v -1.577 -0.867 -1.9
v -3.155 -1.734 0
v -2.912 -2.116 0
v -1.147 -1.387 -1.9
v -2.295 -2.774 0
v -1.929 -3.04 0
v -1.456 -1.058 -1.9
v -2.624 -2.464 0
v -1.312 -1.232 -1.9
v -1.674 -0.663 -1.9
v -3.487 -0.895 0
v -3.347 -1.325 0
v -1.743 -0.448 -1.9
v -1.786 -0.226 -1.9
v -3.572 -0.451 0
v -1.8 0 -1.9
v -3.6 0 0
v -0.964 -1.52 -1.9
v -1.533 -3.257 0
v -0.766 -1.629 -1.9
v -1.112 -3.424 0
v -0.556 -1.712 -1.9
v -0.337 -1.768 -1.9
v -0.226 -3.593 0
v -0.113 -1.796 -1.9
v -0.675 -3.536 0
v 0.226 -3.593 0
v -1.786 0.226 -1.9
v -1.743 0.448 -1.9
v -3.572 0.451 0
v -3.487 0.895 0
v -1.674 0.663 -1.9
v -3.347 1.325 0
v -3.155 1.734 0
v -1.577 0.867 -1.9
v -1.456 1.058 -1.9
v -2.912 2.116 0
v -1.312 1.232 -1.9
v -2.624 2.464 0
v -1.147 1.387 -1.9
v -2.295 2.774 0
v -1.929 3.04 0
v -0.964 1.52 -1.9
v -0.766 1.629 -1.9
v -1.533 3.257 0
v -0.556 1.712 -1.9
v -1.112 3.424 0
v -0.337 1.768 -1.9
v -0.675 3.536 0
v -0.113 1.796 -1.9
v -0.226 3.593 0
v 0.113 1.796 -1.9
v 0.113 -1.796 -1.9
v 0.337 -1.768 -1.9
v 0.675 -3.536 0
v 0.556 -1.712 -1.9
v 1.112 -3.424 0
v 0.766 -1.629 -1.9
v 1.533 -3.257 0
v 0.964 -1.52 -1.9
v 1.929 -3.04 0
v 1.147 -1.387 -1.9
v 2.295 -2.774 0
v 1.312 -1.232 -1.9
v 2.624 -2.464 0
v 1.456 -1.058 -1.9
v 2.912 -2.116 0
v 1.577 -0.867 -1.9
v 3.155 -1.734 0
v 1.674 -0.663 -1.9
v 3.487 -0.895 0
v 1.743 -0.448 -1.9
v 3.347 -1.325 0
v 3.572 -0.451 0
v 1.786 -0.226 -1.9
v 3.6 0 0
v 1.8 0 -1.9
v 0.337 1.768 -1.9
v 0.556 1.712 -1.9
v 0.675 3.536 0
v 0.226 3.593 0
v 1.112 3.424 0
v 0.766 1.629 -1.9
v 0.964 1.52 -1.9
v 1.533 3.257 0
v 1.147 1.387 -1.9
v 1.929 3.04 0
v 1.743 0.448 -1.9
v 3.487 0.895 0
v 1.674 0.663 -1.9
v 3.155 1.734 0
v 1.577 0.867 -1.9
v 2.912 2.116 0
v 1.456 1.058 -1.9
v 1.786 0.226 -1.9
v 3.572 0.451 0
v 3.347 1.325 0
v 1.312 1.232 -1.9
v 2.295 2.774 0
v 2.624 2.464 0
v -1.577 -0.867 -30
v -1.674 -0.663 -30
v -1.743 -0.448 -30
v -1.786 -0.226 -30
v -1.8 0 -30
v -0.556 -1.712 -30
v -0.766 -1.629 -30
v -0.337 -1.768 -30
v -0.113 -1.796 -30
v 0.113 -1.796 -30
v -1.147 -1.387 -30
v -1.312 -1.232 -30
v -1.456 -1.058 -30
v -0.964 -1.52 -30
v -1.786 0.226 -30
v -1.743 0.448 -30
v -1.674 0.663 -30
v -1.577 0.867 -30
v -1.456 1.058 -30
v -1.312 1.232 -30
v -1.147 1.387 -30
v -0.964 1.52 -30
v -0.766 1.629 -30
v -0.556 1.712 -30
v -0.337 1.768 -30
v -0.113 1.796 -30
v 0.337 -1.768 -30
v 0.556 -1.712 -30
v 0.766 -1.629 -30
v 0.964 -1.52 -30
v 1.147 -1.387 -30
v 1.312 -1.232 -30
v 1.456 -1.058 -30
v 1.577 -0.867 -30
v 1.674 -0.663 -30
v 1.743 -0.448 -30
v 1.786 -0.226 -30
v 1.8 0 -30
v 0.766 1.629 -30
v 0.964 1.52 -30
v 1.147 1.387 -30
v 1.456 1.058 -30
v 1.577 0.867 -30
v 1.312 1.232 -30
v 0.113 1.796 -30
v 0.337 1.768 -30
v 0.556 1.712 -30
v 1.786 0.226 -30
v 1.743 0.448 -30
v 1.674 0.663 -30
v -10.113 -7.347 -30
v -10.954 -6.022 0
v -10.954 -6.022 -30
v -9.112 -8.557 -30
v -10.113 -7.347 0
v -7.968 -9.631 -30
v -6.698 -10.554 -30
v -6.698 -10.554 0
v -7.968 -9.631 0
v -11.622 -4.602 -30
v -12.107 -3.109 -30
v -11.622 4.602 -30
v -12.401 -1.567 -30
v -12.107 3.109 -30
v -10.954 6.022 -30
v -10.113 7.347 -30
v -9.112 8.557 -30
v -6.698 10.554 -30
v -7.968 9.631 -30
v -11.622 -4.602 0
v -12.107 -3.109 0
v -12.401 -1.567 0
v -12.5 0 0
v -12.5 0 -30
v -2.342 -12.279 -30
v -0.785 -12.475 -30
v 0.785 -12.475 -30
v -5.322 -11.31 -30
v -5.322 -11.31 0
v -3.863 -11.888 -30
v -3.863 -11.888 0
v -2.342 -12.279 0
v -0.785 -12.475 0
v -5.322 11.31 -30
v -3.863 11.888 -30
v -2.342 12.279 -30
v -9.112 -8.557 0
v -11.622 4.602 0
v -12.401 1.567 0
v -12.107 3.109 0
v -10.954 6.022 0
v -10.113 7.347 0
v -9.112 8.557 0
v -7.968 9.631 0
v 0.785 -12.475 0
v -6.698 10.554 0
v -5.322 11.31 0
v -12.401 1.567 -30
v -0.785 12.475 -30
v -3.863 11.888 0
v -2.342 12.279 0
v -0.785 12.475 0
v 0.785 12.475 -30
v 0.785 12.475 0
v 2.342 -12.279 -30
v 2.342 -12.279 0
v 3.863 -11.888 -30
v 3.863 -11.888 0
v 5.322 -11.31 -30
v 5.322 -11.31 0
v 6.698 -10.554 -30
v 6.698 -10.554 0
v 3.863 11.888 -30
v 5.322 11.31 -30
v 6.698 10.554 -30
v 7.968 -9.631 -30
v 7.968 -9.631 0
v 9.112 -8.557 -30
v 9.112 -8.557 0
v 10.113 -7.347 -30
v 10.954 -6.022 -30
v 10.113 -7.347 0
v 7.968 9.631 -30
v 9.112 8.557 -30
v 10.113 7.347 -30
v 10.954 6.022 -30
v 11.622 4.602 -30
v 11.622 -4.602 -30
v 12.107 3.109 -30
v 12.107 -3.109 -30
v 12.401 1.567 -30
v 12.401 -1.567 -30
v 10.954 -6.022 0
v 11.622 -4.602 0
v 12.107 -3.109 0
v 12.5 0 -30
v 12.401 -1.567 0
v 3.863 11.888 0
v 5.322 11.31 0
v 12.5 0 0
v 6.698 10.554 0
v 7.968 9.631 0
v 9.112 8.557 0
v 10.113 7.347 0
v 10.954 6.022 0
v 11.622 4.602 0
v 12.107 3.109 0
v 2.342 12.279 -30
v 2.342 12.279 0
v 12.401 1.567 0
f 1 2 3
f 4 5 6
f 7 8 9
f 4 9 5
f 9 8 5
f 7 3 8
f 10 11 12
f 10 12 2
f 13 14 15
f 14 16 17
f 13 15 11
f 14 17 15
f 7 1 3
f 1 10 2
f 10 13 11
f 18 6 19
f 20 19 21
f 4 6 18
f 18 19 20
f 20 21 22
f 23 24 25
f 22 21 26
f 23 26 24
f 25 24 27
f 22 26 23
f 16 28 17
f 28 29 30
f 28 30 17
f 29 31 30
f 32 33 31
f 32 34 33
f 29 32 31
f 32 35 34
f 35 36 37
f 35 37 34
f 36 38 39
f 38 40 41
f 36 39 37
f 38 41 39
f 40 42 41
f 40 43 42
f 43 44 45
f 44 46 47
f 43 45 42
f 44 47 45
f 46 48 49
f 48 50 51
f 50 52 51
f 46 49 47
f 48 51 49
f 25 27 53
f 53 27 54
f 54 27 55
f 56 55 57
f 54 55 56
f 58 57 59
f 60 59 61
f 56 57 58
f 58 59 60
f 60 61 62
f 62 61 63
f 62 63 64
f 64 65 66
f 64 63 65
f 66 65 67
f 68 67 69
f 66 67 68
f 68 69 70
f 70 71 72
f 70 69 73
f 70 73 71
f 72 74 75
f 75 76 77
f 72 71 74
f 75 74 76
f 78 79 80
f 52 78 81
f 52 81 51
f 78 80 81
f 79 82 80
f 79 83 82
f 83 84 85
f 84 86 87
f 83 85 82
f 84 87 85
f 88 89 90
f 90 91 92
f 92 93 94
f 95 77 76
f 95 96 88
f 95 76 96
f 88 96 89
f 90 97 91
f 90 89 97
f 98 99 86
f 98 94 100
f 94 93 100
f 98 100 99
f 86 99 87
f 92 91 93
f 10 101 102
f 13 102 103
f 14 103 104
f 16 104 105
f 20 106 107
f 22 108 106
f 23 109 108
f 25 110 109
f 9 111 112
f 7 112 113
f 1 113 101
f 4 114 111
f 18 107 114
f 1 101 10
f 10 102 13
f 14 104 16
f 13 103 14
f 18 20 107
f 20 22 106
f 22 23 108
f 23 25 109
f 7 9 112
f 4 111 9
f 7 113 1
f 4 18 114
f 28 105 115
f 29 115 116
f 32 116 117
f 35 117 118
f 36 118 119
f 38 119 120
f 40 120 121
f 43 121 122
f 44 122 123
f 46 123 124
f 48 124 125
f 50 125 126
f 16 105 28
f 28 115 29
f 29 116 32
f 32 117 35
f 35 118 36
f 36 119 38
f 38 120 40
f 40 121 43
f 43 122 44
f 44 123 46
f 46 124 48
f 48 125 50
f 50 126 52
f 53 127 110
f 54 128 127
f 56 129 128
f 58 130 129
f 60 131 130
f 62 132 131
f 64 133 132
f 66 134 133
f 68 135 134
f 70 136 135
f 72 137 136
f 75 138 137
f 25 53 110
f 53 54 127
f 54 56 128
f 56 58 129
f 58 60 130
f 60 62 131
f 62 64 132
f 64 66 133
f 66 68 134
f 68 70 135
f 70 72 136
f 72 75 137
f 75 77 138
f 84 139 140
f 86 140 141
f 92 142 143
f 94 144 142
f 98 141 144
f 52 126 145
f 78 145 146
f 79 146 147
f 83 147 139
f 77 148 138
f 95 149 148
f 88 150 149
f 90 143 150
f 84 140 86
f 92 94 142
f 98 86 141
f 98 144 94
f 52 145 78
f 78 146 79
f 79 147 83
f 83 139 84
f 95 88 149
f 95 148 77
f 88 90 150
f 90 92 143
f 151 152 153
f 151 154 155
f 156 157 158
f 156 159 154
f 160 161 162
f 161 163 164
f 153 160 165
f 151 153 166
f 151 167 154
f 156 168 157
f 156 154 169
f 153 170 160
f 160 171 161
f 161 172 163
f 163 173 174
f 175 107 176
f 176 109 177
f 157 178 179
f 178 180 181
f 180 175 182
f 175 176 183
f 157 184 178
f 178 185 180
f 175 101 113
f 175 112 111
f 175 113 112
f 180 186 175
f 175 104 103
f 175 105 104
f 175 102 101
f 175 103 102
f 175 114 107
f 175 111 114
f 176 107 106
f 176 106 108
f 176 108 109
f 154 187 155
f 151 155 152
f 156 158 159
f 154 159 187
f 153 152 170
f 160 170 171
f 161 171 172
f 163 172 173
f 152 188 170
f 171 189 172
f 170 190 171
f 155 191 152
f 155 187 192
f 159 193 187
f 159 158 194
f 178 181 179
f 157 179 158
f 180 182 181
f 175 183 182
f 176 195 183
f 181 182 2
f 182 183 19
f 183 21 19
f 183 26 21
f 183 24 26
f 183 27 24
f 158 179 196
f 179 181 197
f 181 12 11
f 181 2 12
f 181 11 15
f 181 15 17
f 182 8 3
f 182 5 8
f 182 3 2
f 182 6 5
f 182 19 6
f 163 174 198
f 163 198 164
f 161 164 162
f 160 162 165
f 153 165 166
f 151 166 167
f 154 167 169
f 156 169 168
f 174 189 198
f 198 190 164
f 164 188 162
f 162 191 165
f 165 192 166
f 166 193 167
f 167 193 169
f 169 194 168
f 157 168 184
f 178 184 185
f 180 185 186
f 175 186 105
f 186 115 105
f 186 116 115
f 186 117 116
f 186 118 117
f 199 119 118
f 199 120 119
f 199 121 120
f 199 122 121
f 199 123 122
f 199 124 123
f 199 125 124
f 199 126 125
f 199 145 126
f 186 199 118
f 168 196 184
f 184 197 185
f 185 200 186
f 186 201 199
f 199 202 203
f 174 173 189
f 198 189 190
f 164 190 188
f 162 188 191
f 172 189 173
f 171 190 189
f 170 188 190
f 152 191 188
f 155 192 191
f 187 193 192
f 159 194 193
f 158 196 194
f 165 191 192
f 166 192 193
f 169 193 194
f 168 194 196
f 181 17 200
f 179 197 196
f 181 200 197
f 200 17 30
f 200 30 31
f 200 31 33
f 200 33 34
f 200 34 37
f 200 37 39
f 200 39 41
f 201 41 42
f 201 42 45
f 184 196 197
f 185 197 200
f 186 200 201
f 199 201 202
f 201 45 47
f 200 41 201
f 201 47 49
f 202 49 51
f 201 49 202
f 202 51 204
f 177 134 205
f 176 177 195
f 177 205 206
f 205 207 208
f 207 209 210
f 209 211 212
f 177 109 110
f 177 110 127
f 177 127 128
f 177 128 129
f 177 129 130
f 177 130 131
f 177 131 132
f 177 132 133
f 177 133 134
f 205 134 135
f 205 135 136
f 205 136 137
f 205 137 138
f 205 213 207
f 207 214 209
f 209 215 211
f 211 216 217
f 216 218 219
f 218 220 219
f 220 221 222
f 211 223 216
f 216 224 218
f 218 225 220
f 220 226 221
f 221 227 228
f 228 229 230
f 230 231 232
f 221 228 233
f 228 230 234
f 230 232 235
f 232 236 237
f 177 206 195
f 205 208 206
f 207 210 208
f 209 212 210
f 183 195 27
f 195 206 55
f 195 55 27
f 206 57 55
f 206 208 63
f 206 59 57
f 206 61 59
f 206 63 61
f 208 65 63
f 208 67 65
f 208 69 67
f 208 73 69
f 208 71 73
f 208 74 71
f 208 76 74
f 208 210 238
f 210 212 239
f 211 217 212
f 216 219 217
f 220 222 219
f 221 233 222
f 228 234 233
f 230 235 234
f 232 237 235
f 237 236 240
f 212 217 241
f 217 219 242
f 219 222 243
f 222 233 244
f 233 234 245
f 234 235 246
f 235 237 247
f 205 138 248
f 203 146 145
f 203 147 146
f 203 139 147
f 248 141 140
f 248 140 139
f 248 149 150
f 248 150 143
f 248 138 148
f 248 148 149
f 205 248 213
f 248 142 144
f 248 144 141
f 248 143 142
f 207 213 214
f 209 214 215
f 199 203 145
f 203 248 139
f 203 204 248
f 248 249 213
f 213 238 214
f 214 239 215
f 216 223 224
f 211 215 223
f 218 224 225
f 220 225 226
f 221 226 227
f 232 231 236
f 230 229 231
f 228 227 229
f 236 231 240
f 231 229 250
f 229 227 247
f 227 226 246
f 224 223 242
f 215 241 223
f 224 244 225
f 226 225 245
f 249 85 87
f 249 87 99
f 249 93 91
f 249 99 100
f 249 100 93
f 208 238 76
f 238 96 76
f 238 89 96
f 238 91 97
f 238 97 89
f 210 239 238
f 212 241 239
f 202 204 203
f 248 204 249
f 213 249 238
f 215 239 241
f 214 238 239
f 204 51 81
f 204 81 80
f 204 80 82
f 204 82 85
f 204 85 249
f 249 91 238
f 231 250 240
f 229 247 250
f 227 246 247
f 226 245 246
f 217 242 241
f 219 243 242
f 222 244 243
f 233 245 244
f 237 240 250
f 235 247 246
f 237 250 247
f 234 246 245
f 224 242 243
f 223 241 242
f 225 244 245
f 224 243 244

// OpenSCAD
$fn = 50;

difference() {
	union() {
		translate(v = [0, 0, -30.0]) {
			cylinder(h = 30, r = 12.5);
		}
	}
	union() {
		translate(v = [0, 0, 0]) {
			rotate(a = [0, 0, 0]) {
				difference() {
					union() {
						translate(v = [0, 0, -33.0]) {
							cylinder(h = 33, r = 1.5);
						}
						translate(v = [0, 0, -1.9]) {
							cylinder(h = 1.9, r1 = 1.8, r2 = 3.6);
						}
						translate(v = [0, 0, -33.0]) {
							cylinder(h = 33, r = 1.8);
						}
						translate(v = [0, 0, -33.0]) {
							cylinder(h = 33, r = 1.5);
						}
					}
					union();
				}
			}
		}
	}
}
